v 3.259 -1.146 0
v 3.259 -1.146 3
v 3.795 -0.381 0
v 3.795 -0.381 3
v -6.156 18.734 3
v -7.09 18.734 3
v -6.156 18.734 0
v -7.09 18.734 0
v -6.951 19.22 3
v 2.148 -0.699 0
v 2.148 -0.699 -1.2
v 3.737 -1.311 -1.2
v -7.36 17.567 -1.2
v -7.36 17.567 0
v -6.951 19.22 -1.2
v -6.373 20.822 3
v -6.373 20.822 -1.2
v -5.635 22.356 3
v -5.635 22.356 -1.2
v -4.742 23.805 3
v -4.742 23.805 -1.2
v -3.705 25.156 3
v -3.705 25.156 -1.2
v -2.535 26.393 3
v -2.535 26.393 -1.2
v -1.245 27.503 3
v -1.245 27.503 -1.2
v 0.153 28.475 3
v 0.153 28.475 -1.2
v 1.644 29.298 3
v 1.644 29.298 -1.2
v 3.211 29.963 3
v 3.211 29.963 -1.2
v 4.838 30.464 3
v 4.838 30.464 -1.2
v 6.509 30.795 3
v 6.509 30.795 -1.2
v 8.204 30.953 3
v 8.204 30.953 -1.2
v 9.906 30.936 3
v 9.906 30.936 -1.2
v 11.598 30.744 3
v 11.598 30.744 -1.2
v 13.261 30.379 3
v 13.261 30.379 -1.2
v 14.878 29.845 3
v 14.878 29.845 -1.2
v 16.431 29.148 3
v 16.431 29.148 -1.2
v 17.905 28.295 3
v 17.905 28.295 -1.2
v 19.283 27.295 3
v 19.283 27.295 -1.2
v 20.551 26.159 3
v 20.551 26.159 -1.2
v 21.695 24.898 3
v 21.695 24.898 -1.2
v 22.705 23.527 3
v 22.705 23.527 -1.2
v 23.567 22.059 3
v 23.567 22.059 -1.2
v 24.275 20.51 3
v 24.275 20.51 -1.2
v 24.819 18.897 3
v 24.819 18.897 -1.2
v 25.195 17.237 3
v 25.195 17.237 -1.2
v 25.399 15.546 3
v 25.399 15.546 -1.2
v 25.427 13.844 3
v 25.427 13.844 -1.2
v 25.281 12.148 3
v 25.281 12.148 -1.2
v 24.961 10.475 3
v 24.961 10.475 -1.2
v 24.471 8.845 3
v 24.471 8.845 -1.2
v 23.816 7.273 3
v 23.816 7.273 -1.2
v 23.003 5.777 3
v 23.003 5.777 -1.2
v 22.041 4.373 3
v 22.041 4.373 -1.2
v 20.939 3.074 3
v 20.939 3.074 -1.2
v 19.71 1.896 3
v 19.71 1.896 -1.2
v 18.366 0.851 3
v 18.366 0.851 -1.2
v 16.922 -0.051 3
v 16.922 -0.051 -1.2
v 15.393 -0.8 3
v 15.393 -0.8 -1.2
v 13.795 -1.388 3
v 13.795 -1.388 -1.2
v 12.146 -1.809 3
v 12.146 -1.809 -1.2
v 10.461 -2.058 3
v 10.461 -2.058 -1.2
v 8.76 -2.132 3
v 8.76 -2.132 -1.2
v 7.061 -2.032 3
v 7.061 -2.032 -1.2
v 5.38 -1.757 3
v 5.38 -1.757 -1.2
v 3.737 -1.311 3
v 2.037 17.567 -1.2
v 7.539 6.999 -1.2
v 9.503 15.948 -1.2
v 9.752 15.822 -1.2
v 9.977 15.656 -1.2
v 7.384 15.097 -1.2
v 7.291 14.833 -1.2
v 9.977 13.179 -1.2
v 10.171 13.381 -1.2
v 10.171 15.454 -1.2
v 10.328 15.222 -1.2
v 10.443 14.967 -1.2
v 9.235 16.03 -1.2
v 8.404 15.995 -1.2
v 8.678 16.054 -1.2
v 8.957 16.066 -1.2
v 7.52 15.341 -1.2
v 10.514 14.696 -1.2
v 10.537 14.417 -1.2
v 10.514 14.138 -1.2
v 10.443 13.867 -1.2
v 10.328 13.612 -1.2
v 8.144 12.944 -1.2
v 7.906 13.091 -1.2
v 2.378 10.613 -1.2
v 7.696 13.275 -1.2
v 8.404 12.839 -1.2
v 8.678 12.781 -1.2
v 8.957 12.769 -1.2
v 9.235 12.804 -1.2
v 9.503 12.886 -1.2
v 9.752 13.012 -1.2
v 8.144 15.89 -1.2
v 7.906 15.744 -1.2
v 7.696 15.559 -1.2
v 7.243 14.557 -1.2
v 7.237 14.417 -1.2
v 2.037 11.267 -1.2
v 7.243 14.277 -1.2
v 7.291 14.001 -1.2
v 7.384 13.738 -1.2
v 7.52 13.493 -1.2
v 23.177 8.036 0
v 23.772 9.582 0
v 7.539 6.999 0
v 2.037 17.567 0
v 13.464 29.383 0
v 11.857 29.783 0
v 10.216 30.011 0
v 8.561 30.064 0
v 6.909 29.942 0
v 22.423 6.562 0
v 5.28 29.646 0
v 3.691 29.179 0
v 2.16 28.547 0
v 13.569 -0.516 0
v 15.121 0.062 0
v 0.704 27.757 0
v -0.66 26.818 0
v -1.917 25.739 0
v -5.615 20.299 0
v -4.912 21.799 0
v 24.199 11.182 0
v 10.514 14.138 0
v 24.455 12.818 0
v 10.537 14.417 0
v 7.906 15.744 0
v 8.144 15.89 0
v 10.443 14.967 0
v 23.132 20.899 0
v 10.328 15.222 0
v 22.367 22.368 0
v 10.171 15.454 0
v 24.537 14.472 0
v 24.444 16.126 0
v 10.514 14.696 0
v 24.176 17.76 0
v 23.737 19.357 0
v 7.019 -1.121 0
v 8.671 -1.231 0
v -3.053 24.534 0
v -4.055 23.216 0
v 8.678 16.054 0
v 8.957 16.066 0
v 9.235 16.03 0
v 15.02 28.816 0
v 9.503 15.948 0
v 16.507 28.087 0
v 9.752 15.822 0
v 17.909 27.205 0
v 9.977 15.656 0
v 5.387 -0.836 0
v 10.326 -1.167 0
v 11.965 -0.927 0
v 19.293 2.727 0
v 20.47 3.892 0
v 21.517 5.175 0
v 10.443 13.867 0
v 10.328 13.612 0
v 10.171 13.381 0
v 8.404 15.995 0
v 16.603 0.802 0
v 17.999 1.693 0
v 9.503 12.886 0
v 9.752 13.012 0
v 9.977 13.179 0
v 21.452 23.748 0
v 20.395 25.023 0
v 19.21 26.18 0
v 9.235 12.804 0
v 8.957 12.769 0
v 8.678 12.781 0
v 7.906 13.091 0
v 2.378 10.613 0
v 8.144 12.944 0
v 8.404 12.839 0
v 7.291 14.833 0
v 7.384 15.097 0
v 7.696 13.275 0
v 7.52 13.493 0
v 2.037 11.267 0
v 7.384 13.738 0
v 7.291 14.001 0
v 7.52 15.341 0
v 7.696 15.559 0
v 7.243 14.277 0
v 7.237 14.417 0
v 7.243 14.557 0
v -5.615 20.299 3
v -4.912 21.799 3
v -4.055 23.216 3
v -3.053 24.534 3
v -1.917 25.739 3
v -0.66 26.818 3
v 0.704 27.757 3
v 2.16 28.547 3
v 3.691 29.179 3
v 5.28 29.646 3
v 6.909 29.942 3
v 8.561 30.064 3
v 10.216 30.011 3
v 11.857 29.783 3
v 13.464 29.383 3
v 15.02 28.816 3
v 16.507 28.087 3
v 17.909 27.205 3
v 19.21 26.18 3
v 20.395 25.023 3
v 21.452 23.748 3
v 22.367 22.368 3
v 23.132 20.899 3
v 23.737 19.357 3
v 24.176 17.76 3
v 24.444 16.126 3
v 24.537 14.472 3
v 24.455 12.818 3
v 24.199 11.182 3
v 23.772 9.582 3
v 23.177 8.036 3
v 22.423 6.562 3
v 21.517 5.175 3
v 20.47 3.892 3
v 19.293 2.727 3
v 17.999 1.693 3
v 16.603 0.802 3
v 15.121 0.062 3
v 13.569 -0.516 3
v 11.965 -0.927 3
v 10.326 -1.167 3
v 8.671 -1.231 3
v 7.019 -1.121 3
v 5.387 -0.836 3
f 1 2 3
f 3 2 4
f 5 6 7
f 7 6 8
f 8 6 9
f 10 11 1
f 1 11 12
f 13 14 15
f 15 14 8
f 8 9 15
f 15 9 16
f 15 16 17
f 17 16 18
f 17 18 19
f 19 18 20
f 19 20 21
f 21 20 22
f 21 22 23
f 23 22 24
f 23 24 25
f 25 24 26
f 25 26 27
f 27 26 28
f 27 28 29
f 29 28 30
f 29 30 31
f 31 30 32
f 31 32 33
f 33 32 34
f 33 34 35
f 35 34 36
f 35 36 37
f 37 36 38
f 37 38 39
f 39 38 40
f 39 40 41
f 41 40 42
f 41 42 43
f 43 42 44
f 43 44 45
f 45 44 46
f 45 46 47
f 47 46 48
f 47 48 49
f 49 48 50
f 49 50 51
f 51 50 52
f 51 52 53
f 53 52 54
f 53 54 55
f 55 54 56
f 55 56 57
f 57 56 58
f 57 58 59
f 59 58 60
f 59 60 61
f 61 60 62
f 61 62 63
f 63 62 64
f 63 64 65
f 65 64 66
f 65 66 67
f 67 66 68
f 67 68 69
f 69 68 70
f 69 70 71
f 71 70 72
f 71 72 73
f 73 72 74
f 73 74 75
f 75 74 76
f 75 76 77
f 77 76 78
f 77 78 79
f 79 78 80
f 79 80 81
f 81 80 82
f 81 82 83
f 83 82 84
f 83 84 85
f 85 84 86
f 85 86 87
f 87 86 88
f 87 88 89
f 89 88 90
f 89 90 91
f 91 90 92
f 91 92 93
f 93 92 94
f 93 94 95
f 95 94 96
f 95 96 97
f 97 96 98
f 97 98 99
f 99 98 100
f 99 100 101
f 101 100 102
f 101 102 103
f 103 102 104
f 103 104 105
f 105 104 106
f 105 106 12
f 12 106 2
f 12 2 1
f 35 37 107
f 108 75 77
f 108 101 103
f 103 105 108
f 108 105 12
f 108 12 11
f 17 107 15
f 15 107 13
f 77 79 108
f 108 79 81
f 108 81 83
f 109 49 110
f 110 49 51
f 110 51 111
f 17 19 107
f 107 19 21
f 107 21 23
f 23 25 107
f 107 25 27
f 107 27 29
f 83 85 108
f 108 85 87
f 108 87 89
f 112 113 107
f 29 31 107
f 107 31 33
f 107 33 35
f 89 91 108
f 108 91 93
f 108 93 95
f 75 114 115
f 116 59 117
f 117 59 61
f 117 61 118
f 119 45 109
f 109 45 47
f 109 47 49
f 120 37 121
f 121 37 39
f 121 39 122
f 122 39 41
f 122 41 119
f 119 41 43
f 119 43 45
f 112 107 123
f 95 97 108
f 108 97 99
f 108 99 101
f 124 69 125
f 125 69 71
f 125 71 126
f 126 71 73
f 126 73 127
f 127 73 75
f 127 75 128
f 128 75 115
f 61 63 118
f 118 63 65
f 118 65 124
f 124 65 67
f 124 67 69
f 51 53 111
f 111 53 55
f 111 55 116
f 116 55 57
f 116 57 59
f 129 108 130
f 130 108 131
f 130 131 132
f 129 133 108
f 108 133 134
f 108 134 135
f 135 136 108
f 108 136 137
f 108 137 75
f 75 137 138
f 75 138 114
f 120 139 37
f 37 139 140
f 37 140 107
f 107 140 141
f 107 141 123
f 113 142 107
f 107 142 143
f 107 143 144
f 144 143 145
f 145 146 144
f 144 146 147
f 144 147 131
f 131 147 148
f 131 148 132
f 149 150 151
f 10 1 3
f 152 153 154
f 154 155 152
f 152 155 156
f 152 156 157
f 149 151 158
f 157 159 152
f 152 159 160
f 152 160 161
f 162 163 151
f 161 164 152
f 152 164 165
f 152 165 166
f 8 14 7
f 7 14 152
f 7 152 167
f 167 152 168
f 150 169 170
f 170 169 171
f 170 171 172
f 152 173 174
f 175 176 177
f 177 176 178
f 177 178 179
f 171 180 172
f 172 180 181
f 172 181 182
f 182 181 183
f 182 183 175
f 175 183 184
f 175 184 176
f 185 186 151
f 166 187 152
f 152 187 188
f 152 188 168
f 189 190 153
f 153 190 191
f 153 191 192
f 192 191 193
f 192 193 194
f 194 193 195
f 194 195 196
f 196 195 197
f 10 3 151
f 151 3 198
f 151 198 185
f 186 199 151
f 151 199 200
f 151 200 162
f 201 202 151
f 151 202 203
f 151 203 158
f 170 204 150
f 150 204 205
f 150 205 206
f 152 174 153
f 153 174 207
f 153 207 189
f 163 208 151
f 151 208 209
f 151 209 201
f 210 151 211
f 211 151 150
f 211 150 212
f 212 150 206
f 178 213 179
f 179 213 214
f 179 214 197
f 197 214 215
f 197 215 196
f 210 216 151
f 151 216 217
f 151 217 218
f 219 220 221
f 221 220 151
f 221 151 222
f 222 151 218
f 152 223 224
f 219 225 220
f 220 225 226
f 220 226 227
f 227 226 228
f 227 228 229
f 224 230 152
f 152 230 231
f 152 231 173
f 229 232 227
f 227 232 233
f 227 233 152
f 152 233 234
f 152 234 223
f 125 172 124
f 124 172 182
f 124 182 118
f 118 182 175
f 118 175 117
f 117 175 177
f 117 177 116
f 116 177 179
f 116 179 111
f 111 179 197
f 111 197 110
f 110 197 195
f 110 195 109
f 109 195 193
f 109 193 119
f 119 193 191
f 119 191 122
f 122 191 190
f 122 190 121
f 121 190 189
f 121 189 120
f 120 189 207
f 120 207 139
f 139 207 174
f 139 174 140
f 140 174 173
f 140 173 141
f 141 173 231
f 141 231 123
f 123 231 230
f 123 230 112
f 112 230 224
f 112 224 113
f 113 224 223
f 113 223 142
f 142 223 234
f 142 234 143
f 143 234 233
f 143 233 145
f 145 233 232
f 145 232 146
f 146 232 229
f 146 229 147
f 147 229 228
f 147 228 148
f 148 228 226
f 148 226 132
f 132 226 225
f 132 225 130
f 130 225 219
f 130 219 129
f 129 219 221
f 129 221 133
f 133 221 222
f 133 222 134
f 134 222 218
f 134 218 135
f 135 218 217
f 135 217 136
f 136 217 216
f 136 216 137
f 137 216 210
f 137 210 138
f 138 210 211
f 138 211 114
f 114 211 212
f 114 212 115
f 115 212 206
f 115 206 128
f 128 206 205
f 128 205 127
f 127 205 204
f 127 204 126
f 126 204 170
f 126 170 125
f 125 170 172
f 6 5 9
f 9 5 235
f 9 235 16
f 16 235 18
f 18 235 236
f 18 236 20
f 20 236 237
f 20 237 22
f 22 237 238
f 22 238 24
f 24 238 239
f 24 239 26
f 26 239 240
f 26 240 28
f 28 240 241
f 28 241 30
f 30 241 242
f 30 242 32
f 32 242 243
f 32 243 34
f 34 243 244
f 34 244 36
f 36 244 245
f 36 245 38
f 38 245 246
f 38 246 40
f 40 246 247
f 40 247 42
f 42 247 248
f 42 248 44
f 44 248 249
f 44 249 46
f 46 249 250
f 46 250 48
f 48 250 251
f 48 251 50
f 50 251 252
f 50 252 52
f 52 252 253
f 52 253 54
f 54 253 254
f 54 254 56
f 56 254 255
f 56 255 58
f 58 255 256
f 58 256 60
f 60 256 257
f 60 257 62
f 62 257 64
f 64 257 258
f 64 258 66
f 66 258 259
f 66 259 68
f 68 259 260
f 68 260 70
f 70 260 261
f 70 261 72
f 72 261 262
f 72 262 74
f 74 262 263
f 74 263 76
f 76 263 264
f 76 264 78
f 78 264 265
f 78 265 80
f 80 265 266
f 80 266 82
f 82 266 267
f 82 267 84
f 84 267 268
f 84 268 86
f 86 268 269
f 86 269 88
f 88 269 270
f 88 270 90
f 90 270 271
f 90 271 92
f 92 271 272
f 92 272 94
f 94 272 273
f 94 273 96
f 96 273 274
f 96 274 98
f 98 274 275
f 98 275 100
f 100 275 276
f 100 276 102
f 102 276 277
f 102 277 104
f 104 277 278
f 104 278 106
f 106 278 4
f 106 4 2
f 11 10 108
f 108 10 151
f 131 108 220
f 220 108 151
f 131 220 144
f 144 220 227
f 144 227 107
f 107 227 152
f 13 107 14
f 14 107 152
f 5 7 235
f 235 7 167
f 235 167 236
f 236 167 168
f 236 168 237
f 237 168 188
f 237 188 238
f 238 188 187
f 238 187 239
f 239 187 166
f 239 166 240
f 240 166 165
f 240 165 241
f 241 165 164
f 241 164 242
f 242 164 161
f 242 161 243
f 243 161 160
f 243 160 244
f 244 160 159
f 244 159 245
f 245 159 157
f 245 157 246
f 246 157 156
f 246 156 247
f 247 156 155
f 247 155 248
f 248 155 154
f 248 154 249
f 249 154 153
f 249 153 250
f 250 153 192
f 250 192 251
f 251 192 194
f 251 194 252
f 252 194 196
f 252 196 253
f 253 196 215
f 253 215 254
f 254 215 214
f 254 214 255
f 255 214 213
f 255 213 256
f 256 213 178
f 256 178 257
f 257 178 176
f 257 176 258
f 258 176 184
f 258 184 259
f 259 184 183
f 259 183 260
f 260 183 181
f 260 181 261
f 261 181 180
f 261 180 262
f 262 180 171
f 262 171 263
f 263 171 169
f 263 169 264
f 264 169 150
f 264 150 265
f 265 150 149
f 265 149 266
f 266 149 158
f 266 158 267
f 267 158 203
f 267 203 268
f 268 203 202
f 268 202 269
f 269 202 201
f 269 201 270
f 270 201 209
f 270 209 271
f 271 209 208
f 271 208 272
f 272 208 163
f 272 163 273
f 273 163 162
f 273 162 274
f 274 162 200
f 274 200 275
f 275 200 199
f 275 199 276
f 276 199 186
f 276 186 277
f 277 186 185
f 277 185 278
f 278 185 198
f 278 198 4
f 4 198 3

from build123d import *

# Parameters (mm, degrees)
BOSS_EXTRUDE1_DEPTH     = 3
BOSS_EXTRUDE1_2_DEPTH   = 3
BOSS_EXTRUDE2_START     = 1.2
SKETCH3_R               = 16.55
SKETCH3_R_2             = 1.65
BOSS_EXTRUDE2_DEPTH     = 1.2
CUT_EXTRUDE1_DEPTH      = 7.2
CUT_EXTRUDE1_DEPTH_BACK = 1.2
SKETCH5_R               = 15.65
CUT_EXTRUDE2_DEPTH      = 7.2


with BuildPart() as part:
    # Sketch2 → Boss-Extrude1 (new body)
    with BuildSketch(Plane.XY):
        with BuildLine():
            ThreePointArc((-3.097702158, 4.826453317), (-4.728295227, 7.32932211), (-5.843255553, 10.100612318))
            Line((-5.843255553, 10.100612318), (-7.089846629, 10.100612318))
            ThreePointArc((-7.089846629, 10.100612318), (-5.792708227, 6.775223774), (-3.812717425, 3.805305689))
            Line((-3.812717425, 3.805305689), (-3.097702158, 4.826453317))
        make_face()
    extrude(amount=BOSS_EXTRUDE1_DEPTH)



with BuildPart() as body_2:
    # Sketch2 → Boss-Extrude1 2 (new body)
    with BuildSketch(Plane.XY):
        with BuildLine():
            Line((-7.089846629, 18.733714328), (-5.843255553, 18.733714328))
            ThreePointArc((-5.843255553, 18.733714328), (11.067705083, 29.611518377), (24.237321062, 14.417163323))
            ThreePointArc((24.237321062, 14.417163323), (17.837317684, 1.946395084), (3.974121001, -0.125290568))
            Line((3.974121001, -0.125290568), (3.259105735, -1.146438196))
            ThreePointArc((3.259105735, -1.146438196), (18.394043324, 0.870033301), (25.437321062, 14.417163323))
            ThreePointArc((25.437321062, 14.417163323), (11.064518196, 30.823330232), (-7.089846629, 18.733714328))
        make_face()
    extrude(amount=BOSS_EXTRUDE1_2_DEPTH)


with BuildPart() as part_1:
    add(part.part)

    add(body_2.part)  # Boss-Extrude2 merges body 2
    # Sketch3 → Boss-Extrude2 (add)
    with BuildSketch(Plane(origin=(0, 0, 0), x_dir=(-1, 0, 0), z_dir=(0, 0, -1)).offset(BOSS_EXTRUDE2_START)):
        with Locations((-8.887321062, 14.417163323)):
            Circle(SKETCH3_R)
        with Locations((-8.887321062, 14.417163323)):
            Circle(SKETCH3_R_2, mode=Mode.SUBTRACT)
    extrude(amount=-BOSS_EXTRUDE2_DEPTH)

    # Sketch4 → Cut-Extrude1 (cut, two sides: drawn at the far end of the back side and taken through both)
    with BuildSketch(Plane.XY.offset(-CUT_EXTRUDE1_DEPTH_BACK)):
        with BuildLine():
            Line((2.037321062, 11.267163323), (2.037321062, 17.567163323))
            Line((2.037321062, 17.567163323), (-6.135994151, 17.567163323))
            ThreePointArc((-6.135994151, 17.567163323), (-6.462678938, 14.417163323), (-6.135994151, 11.267163323))
            Line((-6.135994151, 11.267163323), (2.037321062, 11.267163323))
        make_face()
        with BuildLine():
            ThreePointArc((-6.135994151, 11.267163323), (-6.462678938, 14.417163323), (-6.135994151, 17.567163323))
            Line((-6.135994151, 17.567163323), (-7.360140278, 17.567163323))
            ThreePointArc((-7.360140278, 17.567163323), (-7.662678938, 14.417163323), (-7.360140278, 11.267163323))
            Line((-7.360140278, 11.267163323), (-6.135994151, 11.267163323))
        make_face()
        with BuildLine():
            Line((2.148489026, -0.698743623), (2.850630399, 0.304018179))
            ThreePointArc((2.850630399, 0.304018179), (0.082922764, 1.843179443), (-2.31002748, 3.917549728))
            Line((-2.31002748, 3.917549728), (-3.012168853, 2.914787926))
            ThreePointArc((-3.012168853, 2.914787926), (-0.605368959, 0.86019699), (2.148489026, -0.698743623))
        make_face()
        with BuildLine():
            Line((7.538651413, 6.999206045), (2.377993534, 10.612737594))
            Line((2.377993534, 10.612737594), (-2.31002748, 3.917549728))
            ThreePointArc((-2.31002748, 3.917549728), (0.082922764, 1.843179443), (2.850630399, 0.304018179))
            Line((2.850630399, 0.304018179), (7.538651413, 6.999206045))
        make_face()
        with BuildLine():
            Line((2.377993534, 10.612737594), (2.037321062, 11.267163323))
            Line((2.037321062, 11.267163323), (-6.135994151, 11.267163323))
            ThreePointArc((-6.135994151, 11.267163323), (-4.728295227, 7.32932211), (-2.31002748, 3.917549728))
            Line((-2.31002748, 3.917549728), (2.377993534, 10.612737594))
        make_face()
        with BuildLine():
            ThreePointArc((-2.31002748, 3.917549728), (-4.728295227, 7.32932211), (-6.135994151, 11.267163323))
            Line((-6.135994151, 11.267163323), (-7.360140278, 11.267163323))
            ThreePointArc((-7.360140278, 11.267163323), (-5.792708227, 6.775223774), (-3.012168853, 2.914787926))
            Line((-3.012168853, 2.914787926), (-2.31002748, 3.917549728))
        make_face()
    extrude(amount=CUT_EXTRUDE1_DEPTH + CUT_EXTRUDE1_DEPTH_BACK, mode=Mode.SUBTRACT)

    # Sketch5 → Cut-Extrude2 (cut)
    with BuildSketch(Plane.XY):
        with Locations((8.887321062, 14.417163323)):
            Circle(SKETCH5_R)
    extrude(amount=CUT_EXTRUDE2_DEPTH, mode=Mode.SUBTRACT)


solid = part_1.part
